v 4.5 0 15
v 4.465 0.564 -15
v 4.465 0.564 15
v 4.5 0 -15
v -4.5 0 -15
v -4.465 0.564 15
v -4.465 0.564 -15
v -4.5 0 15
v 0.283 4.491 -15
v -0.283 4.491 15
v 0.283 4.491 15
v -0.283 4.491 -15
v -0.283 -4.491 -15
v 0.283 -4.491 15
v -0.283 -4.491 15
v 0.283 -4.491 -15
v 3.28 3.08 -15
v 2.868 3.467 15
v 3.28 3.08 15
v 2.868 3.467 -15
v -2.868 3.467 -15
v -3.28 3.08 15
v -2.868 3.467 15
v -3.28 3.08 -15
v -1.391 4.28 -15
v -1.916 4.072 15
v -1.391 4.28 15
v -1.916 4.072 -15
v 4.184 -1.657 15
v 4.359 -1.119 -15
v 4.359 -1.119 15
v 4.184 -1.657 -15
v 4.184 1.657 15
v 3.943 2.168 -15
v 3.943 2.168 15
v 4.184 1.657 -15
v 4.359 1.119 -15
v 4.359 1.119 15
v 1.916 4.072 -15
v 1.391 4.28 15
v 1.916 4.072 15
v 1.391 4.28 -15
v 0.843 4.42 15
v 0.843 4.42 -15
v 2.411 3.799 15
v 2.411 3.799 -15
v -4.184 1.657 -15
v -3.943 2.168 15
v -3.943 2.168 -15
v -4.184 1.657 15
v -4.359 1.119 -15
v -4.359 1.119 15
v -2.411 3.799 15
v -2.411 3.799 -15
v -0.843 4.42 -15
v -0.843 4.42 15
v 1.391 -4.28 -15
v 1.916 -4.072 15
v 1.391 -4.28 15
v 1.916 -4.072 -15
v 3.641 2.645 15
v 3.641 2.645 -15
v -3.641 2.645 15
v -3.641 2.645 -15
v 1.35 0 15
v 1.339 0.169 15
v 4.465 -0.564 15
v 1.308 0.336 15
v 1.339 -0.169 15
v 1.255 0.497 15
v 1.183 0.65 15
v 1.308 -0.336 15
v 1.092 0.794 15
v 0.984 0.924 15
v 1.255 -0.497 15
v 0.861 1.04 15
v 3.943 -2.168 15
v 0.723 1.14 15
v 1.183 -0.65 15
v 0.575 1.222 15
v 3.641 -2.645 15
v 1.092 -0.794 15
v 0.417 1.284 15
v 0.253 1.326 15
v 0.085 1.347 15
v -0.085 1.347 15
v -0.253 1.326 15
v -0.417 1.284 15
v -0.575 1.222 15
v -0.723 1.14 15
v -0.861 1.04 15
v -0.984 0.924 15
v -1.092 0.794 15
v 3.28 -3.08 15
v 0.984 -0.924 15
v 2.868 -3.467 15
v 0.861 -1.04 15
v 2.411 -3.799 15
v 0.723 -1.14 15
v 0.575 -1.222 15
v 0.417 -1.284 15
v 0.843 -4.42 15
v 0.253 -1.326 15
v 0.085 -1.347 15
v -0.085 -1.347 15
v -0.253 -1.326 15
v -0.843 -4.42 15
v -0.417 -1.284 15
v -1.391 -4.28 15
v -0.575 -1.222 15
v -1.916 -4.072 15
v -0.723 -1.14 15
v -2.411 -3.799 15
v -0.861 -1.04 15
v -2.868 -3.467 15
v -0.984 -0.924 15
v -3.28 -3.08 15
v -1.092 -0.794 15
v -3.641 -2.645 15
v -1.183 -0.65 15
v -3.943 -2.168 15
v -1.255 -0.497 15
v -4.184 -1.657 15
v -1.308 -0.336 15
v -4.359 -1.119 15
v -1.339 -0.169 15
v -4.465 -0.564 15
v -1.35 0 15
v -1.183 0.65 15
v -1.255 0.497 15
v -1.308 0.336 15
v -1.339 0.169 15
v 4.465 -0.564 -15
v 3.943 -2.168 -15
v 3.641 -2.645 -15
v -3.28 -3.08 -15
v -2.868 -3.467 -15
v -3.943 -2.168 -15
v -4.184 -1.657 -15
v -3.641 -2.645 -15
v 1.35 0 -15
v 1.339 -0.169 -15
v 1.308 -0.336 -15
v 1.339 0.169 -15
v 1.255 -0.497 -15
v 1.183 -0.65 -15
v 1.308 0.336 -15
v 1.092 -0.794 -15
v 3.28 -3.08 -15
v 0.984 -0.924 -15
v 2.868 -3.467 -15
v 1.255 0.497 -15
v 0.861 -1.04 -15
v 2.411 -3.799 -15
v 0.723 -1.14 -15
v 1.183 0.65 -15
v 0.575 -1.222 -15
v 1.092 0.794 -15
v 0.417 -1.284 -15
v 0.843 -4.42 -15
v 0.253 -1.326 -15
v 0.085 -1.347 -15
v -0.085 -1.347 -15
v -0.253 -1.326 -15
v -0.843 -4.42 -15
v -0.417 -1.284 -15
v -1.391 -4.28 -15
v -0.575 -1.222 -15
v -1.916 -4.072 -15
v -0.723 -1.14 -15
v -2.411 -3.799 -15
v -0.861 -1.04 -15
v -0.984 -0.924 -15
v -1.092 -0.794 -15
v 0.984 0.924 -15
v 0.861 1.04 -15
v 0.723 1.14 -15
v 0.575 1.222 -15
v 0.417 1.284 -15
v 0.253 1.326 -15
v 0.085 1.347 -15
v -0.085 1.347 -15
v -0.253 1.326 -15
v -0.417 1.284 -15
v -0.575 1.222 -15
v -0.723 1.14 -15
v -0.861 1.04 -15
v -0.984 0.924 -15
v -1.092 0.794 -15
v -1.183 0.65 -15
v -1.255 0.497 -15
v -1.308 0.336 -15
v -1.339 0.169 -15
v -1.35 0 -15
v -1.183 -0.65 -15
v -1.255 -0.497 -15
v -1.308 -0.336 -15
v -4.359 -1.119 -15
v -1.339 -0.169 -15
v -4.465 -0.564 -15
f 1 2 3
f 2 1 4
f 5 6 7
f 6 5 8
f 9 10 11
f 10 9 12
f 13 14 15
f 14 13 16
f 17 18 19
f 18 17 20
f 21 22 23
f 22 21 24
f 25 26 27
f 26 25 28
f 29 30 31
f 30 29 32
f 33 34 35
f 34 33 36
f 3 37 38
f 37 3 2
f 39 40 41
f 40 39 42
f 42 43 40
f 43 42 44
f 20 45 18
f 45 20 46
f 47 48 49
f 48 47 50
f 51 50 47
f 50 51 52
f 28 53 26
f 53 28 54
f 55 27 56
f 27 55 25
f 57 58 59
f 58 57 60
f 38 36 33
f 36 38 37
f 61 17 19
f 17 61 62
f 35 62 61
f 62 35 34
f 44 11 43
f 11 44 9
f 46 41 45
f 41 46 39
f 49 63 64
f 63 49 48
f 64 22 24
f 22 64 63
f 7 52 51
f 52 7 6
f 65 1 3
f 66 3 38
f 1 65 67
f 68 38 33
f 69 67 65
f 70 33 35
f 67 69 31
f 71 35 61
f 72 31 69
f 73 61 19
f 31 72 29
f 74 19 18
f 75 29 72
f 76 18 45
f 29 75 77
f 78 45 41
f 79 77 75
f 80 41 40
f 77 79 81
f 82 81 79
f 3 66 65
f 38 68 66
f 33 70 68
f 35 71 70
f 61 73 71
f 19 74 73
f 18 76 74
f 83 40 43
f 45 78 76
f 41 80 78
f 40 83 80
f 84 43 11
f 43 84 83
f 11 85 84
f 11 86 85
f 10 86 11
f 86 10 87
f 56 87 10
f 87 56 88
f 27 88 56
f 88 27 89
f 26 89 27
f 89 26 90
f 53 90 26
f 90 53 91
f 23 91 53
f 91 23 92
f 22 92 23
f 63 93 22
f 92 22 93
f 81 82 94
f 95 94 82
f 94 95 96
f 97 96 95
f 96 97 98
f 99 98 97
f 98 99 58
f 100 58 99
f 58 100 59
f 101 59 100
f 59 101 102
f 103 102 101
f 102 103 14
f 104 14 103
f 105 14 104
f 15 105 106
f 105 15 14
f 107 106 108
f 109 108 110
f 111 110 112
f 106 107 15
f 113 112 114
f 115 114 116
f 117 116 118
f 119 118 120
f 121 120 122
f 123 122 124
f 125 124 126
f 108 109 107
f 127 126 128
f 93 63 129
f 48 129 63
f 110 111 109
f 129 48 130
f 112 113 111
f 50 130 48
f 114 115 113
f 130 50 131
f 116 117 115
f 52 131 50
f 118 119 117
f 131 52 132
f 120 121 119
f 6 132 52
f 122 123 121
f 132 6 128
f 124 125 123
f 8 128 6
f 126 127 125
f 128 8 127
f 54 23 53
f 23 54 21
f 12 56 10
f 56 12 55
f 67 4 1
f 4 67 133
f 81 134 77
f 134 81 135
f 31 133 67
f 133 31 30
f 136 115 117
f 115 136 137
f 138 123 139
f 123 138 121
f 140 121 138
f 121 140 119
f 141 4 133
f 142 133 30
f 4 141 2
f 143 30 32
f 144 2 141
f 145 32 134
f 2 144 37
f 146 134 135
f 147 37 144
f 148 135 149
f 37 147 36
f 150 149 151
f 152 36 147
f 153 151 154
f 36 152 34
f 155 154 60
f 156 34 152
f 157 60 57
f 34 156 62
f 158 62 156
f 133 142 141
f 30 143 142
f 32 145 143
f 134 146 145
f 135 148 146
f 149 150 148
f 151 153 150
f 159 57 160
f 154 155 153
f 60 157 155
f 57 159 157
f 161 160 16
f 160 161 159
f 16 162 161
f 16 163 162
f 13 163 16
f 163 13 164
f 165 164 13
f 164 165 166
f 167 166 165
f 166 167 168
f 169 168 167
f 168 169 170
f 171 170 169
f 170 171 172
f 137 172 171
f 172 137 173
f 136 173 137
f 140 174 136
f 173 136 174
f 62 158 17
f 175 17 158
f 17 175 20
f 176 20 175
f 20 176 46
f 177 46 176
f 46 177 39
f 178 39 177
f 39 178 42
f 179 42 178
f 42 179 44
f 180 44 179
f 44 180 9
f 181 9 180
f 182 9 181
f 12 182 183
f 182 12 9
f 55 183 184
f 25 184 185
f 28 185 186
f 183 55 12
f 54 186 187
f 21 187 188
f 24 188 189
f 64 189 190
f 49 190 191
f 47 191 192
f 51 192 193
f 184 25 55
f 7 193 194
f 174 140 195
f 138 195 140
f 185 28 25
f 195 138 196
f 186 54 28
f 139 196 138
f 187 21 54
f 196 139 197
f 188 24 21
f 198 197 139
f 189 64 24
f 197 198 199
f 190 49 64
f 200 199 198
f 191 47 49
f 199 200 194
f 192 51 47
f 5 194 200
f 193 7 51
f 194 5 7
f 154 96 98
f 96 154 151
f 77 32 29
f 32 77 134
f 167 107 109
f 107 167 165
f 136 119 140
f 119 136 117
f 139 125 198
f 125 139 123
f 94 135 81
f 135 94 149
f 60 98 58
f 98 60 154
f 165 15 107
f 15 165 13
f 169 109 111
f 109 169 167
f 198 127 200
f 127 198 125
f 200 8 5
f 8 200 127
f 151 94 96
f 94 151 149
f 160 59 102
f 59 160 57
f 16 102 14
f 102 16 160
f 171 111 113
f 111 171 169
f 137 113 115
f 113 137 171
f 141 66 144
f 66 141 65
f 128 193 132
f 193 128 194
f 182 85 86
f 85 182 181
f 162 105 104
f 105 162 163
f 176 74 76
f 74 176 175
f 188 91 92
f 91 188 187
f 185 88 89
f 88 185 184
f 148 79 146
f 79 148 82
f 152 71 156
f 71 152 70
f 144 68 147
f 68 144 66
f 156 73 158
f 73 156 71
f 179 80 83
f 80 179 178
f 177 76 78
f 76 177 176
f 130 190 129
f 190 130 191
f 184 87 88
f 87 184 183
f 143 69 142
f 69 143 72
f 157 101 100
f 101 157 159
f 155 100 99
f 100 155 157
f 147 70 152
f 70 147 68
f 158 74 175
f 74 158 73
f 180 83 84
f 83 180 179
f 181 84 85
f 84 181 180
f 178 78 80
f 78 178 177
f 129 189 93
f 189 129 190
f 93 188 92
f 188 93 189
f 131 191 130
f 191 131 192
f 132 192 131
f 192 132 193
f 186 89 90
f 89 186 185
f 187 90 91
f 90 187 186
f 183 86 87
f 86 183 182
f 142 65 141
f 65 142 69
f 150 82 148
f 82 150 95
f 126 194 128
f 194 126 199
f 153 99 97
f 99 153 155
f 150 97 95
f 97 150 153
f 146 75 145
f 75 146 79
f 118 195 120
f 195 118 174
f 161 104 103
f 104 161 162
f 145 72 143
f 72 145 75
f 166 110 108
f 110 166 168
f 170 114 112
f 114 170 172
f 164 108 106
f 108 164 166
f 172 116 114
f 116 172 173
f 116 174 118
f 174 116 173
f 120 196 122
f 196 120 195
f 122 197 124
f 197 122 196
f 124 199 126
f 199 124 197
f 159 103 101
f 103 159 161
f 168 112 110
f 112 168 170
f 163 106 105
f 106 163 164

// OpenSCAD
$fn = 50;


difference() {
	union() {
		translate(v = [0, 0, -15.0000000000]) {
			cylinder(h = 30, r = 4.5000000000);
		}
	}
	union() {
		translate(v = [0, 0, -100.0000000000]) {
			cylinder(h = 200, r = 1.3500000000);
		}
	}
}
